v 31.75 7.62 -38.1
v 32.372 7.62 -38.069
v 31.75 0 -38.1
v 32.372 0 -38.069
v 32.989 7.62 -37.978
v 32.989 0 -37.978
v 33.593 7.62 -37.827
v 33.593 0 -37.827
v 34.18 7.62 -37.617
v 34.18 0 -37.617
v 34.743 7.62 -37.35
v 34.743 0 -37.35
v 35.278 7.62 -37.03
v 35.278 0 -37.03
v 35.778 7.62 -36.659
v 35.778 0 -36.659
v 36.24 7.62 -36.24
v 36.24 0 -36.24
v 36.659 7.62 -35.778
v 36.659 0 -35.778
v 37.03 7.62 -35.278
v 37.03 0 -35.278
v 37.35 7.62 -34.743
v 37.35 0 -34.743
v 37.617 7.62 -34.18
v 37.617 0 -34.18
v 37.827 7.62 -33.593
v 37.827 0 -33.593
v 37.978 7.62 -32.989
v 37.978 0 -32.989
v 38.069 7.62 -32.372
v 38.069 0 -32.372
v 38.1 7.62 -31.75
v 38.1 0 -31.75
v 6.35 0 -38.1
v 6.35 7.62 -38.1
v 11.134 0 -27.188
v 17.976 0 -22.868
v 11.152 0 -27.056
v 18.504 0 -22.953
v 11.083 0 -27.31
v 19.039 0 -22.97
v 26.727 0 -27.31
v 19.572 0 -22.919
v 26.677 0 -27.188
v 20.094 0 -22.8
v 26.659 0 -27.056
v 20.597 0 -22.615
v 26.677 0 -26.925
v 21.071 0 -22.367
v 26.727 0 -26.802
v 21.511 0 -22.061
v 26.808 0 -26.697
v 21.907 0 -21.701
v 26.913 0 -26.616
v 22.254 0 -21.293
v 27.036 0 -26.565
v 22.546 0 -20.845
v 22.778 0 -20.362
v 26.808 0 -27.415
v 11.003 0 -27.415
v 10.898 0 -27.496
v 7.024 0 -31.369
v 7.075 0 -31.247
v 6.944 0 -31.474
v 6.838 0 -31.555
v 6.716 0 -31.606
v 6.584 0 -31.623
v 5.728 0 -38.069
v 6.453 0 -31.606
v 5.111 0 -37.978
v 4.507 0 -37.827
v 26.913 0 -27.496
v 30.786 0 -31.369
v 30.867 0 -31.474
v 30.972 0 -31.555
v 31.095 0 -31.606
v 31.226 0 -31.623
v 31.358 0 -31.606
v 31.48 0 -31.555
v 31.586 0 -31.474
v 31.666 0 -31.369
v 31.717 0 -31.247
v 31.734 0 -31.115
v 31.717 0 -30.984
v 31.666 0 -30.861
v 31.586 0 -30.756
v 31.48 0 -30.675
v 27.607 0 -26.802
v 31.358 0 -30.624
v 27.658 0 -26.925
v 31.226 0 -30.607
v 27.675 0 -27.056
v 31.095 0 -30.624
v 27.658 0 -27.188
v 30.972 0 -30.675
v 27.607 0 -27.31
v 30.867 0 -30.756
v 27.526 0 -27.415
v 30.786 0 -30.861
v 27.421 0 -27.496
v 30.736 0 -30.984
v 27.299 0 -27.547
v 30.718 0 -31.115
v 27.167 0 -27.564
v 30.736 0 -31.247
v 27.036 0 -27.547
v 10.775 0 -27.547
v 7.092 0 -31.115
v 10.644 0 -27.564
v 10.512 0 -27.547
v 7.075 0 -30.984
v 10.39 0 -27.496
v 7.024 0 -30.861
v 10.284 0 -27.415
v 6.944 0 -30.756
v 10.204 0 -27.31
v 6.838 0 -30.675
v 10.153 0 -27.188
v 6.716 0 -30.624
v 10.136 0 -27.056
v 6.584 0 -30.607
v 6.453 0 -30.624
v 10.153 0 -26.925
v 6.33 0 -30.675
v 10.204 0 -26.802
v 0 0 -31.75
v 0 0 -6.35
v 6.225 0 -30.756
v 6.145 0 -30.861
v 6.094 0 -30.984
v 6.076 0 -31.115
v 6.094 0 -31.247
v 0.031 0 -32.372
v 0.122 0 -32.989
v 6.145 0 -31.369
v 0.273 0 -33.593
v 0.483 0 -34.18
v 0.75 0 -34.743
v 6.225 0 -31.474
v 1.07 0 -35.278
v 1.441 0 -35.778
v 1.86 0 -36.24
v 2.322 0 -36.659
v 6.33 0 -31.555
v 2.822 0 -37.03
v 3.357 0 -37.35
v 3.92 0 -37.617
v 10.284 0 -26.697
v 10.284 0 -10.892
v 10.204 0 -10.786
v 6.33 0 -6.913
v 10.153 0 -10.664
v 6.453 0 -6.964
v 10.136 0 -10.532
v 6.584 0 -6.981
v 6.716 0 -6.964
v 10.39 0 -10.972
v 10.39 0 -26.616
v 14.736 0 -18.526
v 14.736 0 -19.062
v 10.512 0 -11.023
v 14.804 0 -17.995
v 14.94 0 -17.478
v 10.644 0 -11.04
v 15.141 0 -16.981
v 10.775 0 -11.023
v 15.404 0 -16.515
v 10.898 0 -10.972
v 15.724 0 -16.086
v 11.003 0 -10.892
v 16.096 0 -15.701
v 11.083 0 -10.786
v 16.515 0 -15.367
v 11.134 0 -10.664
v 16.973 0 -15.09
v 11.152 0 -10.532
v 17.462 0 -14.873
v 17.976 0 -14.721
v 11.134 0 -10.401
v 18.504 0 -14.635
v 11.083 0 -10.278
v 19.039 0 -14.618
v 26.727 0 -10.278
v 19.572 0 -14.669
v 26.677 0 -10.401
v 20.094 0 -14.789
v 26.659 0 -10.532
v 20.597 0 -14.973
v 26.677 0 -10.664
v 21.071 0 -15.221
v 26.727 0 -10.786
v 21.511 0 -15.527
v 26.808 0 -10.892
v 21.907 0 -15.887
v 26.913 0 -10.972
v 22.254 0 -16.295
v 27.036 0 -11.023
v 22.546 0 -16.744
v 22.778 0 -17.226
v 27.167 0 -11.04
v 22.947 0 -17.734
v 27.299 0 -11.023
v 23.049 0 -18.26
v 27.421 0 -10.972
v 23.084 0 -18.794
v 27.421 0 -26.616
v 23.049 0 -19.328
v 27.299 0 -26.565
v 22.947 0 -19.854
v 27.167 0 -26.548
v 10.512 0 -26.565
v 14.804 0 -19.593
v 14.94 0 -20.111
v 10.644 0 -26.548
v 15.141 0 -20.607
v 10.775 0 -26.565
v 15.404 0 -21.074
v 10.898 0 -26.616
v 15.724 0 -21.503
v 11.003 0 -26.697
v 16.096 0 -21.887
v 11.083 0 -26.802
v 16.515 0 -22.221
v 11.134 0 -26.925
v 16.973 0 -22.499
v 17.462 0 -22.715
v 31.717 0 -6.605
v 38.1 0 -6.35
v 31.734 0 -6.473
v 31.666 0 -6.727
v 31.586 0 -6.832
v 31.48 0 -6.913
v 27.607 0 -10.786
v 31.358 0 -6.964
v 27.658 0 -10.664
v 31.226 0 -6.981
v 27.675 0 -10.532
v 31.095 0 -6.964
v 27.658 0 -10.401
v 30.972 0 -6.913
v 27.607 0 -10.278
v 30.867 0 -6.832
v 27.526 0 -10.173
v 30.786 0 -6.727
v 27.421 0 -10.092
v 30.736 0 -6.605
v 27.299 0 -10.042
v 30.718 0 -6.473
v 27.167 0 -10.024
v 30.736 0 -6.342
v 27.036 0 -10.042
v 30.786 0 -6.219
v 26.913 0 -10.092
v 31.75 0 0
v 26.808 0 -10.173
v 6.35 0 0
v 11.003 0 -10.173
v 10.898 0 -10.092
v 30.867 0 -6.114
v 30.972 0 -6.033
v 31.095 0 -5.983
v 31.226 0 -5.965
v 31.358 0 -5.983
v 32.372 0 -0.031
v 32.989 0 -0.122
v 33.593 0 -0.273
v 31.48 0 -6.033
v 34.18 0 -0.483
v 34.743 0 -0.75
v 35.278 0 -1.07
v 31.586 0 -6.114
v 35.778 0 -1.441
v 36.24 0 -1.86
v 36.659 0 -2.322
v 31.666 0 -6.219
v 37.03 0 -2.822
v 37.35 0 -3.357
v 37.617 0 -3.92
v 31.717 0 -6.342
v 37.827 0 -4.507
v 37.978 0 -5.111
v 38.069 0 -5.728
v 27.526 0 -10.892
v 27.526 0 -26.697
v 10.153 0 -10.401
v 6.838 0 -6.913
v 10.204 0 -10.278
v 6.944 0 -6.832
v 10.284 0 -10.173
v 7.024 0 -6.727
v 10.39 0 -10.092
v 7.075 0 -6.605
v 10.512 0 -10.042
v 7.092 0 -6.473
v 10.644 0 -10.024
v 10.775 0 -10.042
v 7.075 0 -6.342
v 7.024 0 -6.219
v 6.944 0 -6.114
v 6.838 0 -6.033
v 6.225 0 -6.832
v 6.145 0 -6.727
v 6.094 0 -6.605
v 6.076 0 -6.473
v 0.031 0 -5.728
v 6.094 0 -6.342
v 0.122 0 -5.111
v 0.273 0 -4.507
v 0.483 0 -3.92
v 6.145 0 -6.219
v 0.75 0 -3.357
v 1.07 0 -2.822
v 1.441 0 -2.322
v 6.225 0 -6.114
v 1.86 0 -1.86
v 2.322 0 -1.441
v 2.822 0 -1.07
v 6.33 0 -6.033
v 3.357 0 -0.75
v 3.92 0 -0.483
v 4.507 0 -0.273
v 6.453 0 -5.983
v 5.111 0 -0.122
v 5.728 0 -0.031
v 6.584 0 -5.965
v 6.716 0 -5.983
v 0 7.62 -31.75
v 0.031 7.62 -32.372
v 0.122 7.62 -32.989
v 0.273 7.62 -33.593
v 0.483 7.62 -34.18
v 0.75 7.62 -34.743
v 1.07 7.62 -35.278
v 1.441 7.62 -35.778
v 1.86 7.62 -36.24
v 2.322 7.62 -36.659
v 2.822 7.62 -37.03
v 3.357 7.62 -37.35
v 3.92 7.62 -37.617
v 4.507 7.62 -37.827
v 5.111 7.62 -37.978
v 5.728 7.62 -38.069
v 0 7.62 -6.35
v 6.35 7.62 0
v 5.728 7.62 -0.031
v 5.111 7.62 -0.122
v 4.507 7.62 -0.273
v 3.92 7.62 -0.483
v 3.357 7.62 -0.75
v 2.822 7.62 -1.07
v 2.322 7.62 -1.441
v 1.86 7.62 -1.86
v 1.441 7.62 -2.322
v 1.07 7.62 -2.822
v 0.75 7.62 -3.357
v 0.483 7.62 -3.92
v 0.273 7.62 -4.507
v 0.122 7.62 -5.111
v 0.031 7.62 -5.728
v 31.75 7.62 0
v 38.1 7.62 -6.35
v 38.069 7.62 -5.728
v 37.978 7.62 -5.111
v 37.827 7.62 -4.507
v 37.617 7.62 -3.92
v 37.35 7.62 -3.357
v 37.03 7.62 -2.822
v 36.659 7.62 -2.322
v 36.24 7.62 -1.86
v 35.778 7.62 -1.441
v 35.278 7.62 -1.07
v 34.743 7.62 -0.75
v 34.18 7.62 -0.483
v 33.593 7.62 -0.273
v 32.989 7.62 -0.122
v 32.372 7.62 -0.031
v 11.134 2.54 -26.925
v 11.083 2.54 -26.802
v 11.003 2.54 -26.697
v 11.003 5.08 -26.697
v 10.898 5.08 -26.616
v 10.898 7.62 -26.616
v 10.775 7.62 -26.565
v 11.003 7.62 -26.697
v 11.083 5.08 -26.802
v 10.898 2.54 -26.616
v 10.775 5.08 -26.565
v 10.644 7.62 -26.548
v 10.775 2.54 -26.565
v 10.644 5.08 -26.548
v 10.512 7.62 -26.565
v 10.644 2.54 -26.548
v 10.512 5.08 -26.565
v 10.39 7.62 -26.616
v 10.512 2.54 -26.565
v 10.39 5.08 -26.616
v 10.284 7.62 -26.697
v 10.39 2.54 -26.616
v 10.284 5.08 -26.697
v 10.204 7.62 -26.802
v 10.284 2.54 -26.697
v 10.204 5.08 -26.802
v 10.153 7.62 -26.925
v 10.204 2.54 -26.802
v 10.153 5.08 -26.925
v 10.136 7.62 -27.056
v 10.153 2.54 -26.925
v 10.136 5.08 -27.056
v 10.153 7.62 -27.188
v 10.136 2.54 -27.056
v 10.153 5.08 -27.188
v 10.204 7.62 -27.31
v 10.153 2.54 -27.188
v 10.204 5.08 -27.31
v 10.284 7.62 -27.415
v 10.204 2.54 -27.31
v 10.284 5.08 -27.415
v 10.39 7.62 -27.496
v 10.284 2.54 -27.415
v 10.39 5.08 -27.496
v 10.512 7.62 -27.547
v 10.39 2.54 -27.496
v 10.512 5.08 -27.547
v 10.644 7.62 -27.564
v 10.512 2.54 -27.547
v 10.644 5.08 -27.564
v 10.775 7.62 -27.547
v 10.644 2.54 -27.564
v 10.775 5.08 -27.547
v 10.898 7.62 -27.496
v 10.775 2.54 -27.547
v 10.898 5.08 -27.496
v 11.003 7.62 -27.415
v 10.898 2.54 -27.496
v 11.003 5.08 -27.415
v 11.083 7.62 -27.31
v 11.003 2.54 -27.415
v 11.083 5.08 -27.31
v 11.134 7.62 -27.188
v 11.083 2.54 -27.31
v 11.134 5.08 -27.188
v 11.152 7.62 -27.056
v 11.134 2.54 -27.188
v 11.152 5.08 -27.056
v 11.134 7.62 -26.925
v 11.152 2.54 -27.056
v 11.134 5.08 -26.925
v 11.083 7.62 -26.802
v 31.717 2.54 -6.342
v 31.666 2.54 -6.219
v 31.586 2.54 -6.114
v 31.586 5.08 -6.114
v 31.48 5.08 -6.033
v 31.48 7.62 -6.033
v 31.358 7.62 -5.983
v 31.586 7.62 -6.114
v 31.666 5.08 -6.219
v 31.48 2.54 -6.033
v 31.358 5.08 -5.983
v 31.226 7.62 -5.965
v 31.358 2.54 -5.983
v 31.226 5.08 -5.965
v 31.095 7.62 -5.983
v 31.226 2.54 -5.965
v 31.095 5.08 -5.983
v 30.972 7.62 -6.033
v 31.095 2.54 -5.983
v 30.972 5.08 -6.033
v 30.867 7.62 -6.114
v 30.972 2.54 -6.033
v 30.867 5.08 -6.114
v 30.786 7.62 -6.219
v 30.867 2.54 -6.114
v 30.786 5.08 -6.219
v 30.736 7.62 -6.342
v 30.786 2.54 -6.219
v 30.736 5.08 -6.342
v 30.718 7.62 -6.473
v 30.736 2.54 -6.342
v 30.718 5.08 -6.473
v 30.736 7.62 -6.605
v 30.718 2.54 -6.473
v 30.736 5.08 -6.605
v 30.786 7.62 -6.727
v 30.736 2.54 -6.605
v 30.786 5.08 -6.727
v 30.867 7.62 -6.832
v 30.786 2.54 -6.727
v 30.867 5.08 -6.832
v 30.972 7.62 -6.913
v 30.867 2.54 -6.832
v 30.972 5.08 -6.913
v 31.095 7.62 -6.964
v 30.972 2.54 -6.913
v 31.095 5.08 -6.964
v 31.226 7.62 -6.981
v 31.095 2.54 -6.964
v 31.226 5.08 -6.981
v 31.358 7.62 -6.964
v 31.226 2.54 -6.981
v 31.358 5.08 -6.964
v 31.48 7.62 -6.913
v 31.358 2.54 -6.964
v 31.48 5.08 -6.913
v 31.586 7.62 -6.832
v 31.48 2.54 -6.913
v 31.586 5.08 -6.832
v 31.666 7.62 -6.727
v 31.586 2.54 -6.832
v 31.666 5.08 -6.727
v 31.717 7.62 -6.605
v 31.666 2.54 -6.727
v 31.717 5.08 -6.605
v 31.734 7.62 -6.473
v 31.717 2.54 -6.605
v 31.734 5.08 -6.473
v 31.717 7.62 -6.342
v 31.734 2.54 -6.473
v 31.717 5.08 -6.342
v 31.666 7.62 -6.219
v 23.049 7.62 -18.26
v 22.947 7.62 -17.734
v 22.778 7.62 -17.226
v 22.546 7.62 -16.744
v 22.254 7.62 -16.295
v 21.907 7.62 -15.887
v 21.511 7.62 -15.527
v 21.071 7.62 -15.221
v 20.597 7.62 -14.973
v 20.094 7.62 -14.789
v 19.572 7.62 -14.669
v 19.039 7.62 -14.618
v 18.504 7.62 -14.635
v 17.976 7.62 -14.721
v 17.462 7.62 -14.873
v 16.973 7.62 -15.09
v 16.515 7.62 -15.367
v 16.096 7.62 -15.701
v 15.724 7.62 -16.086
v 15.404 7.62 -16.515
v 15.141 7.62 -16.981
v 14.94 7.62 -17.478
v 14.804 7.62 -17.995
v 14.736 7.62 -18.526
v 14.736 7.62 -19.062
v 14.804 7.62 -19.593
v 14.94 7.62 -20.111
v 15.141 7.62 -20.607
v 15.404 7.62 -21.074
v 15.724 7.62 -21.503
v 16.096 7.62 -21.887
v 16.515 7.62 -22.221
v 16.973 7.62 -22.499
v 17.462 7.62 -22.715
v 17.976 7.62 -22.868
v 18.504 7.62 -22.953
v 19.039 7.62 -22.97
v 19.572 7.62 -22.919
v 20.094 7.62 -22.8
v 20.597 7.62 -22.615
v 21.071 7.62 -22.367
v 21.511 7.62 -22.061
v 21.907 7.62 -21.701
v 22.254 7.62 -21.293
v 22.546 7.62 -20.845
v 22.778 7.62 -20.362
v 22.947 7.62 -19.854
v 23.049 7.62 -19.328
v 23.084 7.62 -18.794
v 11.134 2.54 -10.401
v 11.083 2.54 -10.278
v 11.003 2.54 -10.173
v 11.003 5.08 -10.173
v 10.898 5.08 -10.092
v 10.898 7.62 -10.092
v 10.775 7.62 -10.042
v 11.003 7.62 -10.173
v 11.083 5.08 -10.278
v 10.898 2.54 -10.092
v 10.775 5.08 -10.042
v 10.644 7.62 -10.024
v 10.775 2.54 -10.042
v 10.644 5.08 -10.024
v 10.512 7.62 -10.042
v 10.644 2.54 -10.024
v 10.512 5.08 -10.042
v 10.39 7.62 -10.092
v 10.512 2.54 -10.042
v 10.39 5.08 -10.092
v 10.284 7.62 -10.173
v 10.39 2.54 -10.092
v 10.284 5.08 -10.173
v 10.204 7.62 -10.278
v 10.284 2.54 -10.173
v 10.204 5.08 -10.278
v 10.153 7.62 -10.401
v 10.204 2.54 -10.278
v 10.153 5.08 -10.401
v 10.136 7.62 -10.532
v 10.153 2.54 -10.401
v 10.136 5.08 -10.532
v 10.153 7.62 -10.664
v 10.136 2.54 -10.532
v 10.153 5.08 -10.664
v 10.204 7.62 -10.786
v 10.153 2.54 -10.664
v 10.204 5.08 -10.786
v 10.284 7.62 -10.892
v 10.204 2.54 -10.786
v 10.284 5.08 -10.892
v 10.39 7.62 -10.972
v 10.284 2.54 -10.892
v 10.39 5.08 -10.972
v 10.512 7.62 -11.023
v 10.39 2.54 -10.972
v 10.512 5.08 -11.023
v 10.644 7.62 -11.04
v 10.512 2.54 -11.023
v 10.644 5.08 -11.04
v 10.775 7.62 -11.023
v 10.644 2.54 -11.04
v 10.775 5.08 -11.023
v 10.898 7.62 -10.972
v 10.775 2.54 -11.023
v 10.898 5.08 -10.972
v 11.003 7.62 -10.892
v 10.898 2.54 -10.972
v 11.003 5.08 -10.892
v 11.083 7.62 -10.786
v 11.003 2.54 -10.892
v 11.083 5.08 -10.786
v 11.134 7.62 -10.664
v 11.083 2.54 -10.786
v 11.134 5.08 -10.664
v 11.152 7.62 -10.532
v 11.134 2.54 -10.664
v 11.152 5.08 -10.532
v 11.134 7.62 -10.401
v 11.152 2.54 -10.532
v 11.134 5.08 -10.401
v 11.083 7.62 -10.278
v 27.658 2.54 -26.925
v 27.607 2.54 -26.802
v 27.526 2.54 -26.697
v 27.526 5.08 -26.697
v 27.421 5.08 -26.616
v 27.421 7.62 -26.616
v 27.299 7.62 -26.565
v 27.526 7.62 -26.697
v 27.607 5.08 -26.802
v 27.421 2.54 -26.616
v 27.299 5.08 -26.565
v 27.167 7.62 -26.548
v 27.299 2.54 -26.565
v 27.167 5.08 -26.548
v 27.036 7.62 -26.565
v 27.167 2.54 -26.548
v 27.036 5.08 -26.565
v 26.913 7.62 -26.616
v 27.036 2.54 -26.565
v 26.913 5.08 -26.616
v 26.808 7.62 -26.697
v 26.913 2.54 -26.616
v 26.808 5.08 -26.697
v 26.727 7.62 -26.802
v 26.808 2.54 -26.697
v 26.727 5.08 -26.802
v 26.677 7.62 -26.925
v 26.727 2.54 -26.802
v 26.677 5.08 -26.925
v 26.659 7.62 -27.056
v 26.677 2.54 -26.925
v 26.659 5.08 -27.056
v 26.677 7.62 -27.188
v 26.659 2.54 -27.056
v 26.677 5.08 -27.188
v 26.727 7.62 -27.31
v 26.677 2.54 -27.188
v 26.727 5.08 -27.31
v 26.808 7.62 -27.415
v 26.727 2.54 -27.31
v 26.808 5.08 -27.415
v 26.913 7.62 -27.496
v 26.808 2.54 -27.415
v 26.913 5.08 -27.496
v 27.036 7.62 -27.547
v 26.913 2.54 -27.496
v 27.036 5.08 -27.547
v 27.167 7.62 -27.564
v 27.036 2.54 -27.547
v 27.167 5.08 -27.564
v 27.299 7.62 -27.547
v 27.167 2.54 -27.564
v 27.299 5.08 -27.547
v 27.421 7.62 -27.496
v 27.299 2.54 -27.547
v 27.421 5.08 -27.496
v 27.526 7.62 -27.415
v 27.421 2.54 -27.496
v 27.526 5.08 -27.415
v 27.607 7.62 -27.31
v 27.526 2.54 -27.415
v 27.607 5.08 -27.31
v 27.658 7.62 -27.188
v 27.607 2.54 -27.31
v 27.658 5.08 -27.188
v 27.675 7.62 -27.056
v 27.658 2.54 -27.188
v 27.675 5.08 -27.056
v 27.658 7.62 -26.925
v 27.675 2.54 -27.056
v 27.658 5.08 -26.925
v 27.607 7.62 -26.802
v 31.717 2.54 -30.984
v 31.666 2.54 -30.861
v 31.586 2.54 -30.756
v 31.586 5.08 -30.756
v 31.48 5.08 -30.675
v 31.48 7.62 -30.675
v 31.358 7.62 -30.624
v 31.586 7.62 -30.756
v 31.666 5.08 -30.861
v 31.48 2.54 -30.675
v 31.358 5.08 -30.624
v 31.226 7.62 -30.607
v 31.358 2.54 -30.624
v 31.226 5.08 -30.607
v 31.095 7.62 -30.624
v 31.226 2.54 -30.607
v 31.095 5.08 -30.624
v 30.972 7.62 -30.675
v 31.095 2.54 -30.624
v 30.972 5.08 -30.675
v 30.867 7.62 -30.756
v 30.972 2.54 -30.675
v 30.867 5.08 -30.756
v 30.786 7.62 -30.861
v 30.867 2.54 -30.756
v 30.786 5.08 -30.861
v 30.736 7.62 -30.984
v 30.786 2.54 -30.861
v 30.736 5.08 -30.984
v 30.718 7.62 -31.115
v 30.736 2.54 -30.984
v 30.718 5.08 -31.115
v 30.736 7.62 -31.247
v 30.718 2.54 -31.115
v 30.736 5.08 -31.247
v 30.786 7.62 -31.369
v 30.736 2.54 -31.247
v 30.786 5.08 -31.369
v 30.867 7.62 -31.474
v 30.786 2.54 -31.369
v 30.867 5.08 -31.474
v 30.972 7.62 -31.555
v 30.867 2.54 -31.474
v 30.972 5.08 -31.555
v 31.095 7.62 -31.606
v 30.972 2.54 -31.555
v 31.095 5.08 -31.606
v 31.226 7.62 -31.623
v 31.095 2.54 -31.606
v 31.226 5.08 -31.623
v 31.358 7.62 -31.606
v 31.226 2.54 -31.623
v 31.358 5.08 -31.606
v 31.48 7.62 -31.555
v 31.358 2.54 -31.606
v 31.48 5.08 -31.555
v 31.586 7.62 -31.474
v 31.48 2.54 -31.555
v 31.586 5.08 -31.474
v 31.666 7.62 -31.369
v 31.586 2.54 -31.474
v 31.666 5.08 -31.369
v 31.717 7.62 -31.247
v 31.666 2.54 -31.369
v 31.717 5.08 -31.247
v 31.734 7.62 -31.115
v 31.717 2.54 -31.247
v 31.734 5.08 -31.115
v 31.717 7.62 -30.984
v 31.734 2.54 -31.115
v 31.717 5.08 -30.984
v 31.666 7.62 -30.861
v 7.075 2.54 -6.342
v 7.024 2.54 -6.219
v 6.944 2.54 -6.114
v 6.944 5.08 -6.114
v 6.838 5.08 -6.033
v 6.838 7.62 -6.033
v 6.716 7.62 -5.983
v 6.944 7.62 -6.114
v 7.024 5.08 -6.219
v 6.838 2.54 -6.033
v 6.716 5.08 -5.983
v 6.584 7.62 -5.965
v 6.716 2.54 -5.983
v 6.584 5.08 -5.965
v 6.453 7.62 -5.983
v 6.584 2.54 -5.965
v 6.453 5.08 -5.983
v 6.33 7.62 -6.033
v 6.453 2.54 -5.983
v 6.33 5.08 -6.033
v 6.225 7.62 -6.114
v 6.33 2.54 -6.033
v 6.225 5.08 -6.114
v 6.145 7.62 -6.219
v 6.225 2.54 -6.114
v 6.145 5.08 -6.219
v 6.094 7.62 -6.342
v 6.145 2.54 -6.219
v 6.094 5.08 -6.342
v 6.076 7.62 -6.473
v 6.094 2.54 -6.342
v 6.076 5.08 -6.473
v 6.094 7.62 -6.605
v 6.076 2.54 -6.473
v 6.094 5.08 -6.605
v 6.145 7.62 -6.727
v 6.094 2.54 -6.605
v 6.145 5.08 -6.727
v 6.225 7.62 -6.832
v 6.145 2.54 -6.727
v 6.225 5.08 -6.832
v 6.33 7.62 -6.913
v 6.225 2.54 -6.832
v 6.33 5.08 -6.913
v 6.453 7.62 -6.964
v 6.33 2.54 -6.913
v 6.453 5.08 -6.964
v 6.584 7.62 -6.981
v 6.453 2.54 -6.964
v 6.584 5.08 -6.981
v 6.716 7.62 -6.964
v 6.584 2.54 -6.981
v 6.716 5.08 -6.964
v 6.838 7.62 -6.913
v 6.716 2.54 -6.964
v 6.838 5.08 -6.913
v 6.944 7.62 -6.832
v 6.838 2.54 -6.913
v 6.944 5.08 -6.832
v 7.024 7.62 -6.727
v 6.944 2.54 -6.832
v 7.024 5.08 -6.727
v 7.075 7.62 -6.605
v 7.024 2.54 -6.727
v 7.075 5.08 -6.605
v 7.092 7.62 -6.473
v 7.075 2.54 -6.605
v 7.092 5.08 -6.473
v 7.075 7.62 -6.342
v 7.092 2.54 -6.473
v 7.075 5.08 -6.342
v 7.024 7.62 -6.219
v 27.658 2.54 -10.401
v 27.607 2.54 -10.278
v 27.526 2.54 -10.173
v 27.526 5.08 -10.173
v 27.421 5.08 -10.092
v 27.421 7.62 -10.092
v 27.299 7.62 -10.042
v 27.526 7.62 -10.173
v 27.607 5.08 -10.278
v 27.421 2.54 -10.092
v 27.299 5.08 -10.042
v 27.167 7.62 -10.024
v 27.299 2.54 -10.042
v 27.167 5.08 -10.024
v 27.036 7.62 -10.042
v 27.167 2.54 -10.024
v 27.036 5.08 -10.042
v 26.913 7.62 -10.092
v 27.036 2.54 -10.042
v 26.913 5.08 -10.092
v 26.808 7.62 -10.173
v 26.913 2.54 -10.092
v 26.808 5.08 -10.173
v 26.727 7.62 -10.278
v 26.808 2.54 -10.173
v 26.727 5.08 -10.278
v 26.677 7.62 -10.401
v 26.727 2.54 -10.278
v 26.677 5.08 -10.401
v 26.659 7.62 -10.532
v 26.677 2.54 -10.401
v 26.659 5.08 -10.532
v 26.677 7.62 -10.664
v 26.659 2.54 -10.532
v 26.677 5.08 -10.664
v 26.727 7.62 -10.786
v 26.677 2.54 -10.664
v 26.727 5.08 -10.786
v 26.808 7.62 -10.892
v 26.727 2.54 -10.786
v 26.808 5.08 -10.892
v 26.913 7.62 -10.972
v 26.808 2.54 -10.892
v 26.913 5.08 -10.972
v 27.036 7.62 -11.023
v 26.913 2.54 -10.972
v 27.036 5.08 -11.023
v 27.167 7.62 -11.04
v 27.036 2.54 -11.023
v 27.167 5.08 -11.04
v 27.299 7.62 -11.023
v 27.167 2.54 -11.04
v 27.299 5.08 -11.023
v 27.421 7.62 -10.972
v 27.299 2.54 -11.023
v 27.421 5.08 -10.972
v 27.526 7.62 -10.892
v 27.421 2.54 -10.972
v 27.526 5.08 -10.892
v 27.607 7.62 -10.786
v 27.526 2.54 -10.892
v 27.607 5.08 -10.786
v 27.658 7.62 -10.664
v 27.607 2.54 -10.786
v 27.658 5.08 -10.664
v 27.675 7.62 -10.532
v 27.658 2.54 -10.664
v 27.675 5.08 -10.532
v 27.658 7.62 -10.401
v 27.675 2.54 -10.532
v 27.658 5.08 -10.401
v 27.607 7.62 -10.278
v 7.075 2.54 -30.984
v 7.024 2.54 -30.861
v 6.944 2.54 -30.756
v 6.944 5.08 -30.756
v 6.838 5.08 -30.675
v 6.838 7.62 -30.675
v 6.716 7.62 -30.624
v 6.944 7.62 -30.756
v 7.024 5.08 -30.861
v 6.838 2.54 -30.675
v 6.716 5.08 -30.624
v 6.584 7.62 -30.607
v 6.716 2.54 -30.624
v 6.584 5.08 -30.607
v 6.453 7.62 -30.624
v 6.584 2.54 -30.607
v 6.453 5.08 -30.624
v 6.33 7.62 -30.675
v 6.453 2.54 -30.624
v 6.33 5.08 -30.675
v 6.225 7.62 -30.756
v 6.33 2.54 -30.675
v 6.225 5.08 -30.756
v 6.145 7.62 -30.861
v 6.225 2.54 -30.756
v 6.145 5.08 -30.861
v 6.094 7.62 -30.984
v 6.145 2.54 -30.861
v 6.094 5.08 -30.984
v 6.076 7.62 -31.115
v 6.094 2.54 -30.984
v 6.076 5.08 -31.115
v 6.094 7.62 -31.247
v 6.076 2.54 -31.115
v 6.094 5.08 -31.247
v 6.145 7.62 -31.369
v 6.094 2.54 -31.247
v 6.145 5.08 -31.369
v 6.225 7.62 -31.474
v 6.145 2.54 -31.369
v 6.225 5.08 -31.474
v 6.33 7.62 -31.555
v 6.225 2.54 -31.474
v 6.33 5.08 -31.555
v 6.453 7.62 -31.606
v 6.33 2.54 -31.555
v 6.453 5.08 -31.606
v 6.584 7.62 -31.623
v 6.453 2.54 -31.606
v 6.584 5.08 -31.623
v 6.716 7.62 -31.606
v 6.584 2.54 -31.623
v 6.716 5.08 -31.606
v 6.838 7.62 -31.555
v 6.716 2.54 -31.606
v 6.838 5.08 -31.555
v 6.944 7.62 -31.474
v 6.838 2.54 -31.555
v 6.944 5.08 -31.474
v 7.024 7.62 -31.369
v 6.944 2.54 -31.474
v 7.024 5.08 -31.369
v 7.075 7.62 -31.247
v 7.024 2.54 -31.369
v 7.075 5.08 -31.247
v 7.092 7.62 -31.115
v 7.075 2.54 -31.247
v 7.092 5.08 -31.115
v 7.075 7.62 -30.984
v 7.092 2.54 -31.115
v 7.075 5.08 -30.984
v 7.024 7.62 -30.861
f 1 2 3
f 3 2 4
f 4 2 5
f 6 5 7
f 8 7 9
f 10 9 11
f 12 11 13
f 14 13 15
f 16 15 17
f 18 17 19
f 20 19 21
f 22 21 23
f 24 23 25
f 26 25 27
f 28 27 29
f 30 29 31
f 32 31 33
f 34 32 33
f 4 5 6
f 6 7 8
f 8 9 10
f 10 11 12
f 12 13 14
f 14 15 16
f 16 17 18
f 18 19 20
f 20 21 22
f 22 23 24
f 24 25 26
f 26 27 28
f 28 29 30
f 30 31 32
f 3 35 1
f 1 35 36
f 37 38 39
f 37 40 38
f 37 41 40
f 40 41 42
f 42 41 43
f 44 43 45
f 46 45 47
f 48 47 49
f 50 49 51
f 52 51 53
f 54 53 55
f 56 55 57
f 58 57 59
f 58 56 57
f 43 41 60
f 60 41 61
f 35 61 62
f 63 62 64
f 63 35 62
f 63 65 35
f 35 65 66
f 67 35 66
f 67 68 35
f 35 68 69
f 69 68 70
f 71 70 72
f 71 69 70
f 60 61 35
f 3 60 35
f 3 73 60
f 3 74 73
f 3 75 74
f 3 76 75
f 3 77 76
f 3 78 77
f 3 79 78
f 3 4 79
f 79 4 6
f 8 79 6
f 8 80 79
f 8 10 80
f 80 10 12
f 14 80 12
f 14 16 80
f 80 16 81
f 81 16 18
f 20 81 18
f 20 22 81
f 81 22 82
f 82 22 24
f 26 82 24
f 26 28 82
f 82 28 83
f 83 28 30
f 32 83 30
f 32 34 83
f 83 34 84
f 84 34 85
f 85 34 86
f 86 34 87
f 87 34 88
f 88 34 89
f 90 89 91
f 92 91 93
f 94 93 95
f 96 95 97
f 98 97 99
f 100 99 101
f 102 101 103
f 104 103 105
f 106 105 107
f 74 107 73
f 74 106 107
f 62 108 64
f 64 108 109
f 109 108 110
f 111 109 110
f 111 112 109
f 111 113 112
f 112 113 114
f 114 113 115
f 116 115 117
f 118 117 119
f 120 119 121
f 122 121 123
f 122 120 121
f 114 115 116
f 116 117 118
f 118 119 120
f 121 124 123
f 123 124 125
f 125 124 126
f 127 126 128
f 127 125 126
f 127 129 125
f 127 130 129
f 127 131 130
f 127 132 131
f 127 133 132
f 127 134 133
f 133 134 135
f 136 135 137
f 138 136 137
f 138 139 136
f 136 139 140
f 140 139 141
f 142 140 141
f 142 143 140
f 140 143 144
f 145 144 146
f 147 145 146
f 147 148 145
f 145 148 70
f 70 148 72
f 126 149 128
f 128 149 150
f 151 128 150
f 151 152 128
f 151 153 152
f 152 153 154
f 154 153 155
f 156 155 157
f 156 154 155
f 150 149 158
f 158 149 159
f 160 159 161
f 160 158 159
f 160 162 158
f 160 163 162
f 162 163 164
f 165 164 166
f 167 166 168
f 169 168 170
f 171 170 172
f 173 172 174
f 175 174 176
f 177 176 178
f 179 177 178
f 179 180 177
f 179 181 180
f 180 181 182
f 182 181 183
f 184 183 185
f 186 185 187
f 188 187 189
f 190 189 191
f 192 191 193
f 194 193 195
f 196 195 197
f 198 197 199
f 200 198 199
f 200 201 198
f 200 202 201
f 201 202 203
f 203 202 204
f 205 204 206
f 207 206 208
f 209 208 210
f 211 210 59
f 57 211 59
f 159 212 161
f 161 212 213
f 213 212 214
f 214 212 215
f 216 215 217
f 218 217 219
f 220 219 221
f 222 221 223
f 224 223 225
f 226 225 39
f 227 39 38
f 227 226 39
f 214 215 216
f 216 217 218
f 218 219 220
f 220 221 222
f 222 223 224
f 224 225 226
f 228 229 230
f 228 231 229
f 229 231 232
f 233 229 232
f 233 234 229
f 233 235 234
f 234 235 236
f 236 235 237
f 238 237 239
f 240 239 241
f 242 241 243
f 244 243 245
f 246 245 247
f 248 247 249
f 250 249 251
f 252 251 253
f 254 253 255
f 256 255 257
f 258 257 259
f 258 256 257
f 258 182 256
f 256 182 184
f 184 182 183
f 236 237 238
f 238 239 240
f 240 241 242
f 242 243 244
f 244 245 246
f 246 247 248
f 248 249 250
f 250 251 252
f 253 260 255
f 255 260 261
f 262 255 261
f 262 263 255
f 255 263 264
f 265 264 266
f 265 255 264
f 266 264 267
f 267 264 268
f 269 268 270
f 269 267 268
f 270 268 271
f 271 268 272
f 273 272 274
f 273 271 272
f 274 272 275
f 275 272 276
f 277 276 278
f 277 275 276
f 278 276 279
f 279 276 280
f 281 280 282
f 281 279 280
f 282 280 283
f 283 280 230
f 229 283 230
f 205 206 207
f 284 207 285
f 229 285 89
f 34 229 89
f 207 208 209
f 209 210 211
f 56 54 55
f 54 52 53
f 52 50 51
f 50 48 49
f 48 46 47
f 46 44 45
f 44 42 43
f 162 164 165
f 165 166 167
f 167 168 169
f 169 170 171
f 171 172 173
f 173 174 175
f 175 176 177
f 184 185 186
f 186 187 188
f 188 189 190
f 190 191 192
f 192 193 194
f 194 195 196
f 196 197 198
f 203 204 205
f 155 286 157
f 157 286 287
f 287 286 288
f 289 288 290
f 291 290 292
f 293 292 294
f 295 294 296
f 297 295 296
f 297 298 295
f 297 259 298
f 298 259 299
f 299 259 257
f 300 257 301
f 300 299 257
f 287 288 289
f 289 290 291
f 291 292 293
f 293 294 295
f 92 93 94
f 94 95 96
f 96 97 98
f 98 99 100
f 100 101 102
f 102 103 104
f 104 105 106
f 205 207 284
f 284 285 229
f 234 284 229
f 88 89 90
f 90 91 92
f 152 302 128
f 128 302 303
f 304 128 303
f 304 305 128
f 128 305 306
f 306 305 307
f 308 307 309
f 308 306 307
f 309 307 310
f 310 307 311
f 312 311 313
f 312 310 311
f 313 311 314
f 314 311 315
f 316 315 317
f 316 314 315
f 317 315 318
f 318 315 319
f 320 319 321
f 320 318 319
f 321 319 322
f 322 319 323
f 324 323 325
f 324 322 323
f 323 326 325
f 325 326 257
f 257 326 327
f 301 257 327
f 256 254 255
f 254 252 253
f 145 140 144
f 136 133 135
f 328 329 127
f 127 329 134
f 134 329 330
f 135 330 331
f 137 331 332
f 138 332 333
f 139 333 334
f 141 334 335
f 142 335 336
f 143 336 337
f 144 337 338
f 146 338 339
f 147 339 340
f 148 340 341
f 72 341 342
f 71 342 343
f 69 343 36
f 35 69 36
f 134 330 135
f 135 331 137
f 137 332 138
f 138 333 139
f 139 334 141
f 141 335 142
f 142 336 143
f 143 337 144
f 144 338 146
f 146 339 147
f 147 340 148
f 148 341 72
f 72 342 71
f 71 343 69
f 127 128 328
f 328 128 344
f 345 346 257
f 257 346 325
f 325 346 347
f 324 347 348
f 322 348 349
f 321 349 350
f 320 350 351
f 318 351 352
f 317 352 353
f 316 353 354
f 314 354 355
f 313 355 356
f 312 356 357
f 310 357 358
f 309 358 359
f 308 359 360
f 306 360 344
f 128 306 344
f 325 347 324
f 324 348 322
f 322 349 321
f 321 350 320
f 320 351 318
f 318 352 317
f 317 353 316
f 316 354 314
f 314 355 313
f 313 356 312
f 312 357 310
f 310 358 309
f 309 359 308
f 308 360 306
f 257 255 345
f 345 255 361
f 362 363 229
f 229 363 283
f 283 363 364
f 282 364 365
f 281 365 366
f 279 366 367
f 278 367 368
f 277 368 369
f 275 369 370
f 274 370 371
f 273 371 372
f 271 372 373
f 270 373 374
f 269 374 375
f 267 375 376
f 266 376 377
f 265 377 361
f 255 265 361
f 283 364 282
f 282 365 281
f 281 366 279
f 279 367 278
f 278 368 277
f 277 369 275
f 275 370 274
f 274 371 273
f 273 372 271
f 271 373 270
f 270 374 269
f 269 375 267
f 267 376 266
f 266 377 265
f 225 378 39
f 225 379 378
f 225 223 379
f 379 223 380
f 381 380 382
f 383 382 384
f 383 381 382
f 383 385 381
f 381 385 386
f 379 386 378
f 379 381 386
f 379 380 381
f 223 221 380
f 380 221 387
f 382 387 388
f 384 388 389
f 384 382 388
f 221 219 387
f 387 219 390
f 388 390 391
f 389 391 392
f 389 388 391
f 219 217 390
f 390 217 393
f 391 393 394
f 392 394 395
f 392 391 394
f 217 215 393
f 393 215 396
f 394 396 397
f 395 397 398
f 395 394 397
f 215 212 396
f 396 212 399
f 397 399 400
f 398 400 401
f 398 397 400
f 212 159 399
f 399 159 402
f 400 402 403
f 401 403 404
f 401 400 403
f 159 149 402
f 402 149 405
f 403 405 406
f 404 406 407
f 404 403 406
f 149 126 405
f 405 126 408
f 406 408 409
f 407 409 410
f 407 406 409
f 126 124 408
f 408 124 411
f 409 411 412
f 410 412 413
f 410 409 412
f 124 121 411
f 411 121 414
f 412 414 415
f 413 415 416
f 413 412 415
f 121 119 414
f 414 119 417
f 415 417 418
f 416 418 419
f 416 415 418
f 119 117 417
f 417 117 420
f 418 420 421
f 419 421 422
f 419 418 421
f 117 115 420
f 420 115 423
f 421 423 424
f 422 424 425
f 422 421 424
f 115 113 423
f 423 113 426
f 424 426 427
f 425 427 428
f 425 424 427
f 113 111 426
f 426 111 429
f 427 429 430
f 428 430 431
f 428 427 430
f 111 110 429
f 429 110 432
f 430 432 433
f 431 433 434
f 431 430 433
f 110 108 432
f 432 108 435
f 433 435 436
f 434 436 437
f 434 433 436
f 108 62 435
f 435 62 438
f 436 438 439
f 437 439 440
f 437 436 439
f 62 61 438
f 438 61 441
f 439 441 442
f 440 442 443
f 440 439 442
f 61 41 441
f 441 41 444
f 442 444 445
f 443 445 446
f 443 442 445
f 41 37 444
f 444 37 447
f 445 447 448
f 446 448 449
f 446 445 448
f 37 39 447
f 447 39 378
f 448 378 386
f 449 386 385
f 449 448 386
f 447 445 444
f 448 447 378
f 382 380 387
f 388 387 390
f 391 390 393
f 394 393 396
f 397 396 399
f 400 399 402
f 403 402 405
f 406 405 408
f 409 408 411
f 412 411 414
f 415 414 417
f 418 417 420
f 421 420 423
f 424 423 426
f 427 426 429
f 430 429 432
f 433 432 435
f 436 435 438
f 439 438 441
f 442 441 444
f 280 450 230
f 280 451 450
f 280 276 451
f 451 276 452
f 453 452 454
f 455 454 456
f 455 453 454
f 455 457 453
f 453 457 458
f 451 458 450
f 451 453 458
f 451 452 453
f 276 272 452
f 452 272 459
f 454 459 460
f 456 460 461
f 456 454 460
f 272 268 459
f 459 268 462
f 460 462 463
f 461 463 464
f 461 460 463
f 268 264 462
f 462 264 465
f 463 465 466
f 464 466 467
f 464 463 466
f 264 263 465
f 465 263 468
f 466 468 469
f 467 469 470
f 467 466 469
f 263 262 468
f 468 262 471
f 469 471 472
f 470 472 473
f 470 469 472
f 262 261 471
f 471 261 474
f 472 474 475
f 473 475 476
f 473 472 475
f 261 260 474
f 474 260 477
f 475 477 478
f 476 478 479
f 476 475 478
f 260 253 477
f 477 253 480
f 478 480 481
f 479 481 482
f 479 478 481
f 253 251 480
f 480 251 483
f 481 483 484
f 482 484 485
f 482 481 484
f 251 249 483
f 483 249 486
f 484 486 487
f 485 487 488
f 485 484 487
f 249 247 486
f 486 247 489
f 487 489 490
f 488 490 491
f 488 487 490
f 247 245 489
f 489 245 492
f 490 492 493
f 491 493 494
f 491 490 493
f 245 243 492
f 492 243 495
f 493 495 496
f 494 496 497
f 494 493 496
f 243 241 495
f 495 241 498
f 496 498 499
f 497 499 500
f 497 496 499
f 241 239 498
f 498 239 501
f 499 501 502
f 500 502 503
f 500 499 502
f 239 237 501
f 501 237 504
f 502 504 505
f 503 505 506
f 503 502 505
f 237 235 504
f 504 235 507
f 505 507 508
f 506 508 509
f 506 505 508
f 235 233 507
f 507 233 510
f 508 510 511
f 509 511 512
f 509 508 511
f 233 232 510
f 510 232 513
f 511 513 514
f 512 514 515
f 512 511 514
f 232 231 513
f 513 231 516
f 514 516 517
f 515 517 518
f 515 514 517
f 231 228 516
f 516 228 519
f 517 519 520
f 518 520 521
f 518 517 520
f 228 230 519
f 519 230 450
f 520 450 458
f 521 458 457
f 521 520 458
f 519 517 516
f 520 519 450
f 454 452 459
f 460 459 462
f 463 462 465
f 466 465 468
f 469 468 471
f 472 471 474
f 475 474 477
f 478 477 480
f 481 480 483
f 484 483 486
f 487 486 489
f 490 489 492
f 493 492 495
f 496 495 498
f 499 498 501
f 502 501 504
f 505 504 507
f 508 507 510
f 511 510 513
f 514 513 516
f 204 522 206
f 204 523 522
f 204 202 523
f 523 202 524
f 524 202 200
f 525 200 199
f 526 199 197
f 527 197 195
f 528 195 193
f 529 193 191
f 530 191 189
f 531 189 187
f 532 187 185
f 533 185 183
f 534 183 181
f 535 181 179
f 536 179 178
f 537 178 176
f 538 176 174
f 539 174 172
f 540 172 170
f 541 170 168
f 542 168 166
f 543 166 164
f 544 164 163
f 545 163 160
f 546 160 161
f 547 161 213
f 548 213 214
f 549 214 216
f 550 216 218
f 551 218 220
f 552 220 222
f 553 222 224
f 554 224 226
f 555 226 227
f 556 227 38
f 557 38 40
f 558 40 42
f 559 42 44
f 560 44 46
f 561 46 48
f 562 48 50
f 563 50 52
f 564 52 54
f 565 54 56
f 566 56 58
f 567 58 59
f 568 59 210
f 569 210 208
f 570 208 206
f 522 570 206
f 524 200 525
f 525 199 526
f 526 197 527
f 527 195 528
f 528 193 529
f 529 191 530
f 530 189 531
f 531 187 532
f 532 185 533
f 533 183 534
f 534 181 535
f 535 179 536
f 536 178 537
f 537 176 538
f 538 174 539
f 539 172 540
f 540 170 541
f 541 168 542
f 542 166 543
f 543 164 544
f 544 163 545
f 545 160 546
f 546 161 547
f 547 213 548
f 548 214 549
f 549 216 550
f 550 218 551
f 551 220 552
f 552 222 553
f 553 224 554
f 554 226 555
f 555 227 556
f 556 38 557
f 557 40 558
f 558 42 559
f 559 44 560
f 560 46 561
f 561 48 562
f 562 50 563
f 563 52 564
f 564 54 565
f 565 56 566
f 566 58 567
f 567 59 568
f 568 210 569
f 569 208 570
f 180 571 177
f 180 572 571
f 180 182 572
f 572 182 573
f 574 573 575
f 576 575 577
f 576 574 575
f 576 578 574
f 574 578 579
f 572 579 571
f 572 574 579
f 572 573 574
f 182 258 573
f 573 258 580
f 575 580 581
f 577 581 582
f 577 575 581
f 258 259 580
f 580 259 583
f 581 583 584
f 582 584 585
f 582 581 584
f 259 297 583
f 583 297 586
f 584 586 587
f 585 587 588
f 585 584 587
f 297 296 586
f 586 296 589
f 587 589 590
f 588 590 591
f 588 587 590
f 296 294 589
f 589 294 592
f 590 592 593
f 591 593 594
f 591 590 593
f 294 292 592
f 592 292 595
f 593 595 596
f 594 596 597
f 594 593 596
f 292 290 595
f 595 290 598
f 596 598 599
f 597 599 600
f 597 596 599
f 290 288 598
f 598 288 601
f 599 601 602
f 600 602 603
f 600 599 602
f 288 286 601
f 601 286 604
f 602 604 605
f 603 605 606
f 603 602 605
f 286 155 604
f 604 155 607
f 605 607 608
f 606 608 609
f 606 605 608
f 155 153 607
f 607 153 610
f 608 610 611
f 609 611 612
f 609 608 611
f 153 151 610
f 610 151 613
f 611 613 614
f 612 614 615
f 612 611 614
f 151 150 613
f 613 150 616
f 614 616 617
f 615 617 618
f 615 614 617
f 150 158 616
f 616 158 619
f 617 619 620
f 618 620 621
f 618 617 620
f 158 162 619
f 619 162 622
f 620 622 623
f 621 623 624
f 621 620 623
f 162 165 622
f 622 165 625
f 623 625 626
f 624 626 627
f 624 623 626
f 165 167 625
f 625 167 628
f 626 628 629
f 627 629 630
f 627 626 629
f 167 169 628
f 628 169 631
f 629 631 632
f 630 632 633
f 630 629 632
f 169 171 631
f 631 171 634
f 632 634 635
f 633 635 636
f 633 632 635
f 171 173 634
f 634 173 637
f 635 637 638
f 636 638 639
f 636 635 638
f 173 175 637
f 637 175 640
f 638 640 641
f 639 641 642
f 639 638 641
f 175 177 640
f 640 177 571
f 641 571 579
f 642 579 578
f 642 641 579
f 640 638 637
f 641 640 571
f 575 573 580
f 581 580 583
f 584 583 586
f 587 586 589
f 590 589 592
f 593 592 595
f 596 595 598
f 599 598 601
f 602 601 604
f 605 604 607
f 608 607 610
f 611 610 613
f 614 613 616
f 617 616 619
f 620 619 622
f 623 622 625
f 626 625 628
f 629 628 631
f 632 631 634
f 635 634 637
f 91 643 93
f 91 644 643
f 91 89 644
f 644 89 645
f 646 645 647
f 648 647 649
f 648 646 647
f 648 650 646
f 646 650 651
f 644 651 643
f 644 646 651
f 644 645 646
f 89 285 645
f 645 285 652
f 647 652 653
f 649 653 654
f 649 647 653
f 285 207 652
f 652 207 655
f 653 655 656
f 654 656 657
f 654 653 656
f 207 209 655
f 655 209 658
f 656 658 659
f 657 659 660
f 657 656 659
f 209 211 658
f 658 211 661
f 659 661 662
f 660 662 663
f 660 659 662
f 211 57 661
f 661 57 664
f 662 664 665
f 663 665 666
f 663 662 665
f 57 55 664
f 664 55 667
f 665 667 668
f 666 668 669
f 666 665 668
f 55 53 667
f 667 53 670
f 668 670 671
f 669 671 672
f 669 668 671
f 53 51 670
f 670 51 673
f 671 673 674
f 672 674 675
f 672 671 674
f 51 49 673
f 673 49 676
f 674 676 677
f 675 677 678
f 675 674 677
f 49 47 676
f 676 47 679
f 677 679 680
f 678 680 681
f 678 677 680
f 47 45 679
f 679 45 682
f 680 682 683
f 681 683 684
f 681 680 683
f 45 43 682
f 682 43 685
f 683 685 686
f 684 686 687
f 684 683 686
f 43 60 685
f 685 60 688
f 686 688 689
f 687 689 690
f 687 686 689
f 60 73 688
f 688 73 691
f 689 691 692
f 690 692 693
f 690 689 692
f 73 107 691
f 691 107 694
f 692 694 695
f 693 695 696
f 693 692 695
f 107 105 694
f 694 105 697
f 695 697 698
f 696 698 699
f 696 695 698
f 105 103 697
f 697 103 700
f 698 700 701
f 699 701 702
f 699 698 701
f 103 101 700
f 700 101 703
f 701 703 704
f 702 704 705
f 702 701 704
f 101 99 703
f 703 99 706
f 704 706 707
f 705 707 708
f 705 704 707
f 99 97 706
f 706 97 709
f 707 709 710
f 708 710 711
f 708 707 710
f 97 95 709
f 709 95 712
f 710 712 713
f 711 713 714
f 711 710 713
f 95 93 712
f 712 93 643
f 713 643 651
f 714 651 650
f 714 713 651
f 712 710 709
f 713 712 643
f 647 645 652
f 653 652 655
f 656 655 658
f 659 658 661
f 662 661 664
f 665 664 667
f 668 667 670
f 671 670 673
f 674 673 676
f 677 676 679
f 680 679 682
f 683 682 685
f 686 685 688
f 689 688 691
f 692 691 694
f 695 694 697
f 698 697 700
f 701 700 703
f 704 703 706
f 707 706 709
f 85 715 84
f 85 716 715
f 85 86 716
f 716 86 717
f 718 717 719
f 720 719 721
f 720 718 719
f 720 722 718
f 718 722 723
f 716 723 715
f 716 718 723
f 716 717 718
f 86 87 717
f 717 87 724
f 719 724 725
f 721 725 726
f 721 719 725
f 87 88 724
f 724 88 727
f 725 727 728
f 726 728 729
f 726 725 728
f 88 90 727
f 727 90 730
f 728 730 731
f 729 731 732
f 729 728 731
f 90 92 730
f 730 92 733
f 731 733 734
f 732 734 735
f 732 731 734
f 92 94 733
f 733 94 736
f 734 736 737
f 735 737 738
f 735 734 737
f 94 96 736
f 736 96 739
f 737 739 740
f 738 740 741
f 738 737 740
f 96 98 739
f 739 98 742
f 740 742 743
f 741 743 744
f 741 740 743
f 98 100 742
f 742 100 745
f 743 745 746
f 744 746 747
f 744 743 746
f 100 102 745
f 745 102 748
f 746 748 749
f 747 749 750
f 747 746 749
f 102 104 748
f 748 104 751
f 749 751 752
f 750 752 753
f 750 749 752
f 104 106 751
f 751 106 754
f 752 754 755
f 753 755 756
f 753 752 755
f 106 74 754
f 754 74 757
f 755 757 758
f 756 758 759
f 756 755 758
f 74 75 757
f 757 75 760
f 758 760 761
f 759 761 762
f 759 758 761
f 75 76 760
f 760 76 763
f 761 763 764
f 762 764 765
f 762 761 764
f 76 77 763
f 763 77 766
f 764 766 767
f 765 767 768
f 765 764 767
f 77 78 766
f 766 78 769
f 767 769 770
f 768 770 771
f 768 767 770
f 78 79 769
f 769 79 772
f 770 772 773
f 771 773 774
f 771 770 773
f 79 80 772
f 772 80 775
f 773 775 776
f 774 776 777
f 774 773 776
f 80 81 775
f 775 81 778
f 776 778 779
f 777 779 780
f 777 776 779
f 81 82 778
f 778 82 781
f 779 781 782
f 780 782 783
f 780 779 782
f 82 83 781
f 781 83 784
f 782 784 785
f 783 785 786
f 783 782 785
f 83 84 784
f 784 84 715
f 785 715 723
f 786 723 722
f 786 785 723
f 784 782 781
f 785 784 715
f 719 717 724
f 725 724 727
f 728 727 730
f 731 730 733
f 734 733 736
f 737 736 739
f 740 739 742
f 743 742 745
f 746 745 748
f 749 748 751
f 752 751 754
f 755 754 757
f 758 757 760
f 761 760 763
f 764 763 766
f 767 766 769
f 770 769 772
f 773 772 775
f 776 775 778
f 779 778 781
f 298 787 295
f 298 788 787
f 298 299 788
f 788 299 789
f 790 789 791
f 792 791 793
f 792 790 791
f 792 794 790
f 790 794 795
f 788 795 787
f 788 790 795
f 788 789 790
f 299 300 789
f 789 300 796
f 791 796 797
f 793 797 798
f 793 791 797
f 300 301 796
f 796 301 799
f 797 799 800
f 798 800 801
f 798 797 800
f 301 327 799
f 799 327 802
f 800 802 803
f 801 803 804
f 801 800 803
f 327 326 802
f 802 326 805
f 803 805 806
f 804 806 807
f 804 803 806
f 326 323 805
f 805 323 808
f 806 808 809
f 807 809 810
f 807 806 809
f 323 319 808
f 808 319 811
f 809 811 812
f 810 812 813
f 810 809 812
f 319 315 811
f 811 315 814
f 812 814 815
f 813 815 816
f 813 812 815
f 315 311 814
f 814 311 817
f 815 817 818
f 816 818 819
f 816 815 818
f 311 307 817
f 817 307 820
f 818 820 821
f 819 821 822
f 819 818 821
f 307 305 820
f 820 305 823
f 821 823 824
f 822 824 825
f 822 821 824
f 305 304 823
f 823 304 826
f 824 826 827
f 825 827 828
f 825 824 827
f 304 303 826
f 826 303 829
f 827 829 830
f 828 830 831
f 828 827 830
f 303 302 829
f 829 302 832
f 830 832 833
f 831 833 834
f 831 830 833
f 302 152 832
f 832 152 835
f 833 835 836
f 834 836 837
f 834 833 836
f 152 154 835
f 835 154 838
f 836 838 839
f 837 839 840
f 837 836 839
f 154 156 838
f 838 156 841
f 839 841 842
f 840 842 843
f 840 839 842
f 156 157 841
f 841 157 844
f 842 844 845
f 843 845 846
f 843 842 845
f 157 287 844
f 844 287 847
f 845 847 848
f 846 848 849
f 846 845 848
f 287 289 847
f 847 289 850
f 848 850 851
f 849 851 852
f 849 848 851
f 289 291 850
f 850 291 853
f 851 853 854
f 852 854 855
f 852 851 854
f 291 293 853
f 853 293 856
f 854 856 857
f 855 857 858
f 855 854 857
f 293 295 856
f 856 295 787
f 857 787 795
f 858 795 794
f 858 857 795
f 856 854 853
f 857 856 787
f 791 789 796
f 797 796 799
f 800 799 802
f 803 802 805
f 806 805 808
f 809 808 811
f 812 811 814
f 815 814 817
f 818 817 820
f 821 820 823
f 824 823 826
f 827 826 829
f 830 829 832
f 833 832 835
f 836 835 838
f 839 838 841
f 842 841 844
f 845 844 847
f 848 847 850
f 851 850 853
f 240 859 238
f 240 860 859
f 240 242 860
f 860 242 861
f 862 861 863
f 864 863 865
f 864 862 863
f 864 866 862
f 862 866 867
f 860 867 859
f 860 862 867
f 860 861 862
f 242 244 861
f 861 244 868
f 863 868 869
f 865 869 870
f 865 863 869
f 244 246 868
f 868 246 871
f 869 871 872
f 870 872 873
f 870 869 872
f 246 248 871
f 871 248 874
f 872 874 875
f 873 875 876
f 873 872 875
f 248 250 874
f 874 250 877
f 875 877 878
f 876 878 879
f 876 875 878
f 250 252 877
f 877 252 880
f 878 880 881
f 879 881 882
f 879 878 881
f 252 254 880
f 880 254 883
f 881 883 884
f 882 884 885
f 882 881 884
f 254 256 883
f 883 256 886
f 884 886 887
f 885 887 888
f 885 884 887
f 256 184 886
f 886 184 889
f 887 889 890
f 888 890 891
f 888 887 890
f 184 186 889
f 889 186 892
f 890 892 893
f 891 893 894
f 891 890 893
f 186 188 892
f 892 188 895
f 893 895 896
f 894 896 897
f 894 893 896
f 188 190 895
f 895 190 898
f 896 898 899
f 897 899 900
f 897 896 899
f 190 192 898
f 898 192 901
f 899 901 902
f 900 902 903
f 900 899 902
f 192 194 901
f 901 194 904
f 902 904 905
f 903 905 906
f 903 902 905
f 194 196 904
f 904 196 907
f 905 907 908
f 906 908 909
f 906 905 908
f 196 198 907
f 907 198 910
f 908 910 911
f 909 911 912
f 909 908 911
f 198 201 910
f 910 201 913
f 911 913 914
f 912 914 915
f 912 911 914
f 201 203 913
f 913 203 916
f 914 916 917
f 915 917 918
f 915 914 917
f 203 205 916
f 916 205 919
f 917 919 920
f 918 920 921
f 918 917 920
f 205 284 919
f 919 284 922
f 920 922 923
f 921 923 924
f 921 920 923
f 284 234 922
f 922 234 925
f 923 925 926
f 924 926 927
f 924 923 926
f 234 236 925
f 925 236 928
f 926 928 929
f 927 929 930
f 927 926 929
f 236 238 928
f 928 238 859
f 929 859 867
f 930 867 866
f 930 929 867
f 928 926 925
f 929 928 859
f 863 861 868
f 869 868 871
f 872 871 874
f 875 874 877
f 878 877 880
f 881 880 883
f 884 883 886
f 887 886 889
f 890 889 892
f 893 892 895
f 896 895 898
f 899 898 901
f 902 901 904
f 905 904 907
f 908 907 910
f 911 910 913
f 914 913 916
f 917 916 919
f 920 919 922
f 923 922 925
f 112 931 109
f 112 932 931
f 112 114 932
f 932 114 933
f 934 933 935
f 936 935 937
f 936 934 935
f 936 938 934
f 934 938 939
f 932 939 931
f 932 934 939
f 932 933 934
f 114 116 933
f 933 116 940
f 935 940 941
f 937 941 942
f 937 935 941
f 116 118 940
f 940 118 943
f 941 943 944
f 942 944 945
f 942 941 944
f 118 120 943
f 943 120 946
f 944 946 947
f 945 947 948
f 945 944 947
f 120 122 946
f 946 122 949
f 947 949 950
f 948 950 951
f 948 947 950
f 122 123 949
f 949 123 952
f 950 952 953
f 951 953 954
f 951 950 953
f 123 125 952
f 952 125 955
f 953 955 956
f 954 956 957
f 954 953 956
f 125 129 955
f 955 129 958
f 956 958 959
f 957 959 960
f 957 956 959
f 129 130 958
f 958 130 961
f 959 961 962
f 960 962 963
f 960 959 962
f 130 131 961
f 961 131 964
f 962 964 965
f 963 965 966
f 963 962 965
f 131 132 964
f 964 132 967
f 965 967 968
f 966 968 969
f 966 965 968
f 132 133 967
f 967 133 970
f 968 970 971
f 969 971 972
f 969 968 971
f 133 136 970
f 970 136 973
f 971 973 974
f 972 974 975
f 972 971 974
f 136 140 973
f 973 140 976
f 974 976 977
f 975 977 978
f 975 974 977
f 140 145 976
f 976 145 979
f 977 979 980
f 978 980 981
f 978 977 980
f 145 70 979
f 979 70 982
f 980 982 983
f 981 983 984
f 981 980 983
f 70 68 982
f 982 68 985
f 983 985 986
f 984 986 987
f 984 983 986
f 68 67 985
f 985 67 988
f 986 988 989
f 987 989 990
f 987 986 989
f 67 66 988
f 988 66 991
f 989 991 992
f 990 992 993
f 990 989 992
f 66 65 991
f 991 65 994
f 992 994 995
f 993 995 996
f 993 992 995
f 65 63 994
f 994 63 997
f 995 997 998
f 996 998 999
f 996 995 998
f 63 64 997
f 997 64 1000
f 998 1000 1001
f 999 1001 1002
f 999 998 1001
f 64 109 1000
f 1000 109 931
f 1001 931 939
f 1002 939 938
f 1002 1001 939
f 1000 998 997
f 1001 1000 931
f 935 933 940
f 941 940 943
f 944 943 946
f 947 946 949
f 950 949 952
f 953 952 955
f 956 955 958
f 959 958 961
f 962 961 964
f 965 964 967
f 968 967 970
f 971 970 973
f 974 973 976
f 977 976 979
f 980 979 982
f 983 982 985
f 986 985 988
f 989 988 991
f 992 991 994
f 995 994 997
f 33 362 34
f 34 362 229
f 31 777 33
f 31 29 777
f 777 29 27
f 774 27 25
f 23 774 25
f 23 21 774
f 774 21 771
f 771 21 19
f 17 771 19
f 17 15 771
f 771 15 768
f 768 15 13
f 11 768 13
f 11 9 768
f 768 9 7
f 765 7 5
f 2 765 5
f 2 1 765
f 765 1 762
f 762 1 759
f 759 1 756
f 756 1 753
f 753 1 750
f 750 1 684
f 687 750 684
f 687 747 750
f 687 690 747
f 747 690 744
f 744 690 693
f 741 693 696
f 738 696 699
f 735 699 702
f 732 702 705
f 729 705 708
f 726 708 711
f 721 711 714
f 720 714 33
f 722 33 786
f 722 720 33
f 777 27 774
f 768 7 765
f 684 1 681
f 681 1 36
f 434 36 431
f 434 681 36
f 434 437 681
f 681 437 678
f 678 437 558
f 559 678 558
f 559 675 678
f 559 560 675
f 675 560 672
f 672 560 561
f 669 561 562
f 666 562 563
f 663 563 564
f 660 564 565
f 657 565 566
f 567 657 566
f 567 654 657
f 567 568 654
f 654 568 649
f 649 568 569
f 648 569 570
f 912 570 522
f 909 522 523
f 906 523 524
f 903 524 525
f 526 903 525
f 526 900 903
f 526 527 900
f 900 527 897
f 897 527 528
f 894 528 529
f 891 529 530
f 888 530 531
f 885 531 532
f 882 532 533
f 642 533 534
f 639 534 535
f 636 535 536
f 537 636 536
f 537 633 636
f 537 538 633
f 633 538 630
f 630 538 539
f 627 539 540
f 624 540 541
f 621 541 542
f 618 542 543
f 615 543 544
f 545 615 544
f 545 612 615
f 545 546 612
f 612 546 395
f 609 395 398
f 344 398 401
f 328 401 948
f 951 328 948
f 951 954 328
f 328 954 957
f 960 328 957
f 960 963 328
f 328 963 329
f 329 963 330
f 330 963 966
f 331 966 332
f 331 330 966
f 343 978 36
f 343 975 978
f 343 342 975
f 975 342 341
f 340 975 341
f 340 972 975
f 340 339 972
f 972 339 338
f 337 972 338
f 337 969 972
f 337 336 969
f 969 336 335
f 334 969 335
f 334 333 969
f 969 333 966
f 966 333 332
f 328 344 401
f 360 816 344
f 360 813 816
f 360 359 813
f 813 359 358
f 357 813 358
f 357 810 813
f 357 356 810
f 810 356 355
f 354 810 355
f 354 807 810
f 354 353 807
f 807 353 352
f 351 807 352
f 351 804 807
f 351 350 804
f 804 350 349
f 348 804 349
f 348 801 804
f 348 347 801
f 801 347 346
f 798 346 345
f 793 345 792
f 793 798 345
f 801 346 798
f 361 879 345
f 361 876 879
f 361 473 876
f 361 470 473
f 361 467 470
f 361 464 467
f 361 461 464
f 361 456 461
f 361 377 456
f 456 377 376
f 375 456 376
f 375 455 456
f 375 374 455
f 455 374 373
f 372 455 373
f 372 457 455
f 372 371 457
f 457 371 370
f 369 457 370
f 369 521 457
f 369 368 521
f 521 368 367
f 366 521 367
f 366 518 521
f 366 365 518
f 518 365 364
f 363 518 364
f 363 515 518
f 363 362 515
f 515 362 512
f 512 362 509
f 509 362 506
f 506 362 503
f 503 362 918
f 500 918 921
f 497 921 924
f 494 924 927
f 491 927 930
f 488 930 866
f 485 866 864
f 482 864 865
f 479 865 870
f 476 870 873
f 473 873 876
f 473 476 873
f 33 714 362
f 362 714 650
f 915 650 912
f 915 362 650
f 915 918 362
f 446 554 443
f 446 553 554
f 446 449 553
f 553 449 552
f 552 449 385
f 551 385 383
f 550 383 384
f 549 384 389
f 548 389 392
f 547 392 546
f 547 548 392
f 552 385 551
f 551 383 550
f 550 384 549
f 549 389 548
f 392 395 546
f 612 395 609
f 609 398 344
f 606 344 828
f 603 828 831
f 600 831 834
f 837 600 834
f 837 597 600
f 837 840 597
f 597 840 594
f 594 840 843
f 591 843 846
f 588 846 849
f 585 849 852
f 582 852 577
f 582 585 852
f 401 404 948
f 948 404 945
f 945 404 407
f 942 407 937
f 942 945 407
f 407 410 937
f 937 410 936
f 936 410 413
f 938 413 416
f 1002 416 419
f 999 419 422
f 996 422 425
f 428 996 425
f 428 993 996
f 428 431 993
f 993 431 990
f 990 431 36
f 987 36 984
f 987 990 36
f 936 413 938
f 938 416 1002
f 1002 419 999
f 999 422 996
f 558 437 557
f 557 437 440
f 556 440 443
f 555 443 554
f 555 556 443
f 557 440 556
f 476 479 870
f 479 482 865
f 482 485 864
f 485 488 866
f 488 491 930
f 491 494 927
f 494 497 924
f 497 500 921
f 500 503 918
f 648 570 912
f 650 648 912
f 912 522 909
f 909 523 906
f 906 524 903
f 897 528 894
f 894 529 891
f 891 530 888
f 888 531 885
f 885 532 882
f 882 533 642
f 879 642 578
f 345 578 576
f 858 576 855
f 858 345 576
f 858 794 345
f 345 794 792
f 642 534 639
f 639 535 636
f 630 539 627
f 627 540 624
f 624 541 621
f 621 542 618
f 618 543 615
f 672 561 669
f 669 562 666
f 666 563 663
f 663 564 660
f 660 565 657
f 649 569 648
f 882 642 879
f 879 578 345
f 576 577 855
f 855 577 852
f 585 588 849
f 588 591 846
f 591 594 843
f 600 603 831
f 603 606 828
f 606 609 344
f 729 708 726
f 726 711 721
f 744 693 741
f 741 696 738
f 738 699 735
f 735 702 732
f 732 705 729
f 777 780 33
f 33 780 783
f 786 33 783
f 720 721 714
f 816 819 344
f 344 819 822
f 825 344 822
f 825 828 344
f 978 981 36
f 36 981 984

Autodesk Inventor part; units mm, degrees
ref_plane "YZ Plane" through (0, 0, 0) normal (1, 0, 0) x (0, 1, 0)
ref_plane "XZ Plane" through (0, 0, 0) normal (0, 1, 0) x (-1, 0, 0)
ref_plane "XY Plane" through (0, 0, 0) normal (0, 0, 1) x (1, 0, 0)
sketch "Sketch1" plane through (0, 0, 0) normal (0, 1, 0) x (-1, 0, 0)
  line L0 (0, 0) -> (-38.1, 0)
  line L1 (-38.1, 0) -> (-38.1, -38.1)
  line L2 (-38.1, -38.1) -> (0, -38.1)
  line L3 (0, -38.1) -> (0, 0)
  dimension "d0" = 38.1
  dimension "d1" = 38.1
extrude "Extrusion1" add sketch "Sketch1" along normal blind 7.62
sketch "Sketch2" plane through (0, 7.62, 0) normal (0, 1, 0) x (1, 0, 0)
  line L0 (4.5036, 33.196) -> (33.3072, 33.196)
  line L1 (33.3072, 33.196) -> (33.3072, 4.3924)
  line L2 (33.3072, 4.3924) -> (4.5036, 4.3924)
  line L3 (4.5036, 4.3924) -> (4.5036, 33.196)
  line L4 (33.3072, 33.196) -> (4.5036, 4.3924)
  line L5 (4.5036, 33.196) -> (33.3072, 4.3924)
  line L6 (18.9054, 18.7942) -> (27.1672, 27.056)
  line L7 (18.9054, 18.7942) -> (10.6436, 27.056)
  line L8 (18.9054, 18.7942) -> (10.6436, 10.5324)
  line L9 (18.9054, 18.7942) -> (27.1672, 10.5324)
  line L10 (18.9054, 18.7942) -> (31.2263, 31.1151)
  line L11 (18.9054, 18.7942) -> (6.5845, 31.1151)
  line L12 (18.9054, 18.7942) -> (6.5845, 6.4733)
  line L13 (18.9054, 18.7942) -> (31.2263, 6.4733)
  circle A0 centre (27.1672, 27.056) radius 0.508
  circle A1 centre (31.2263, 31.1151) radius 0.508
  circle A2 centre (6.5845, 31.1151) radius 0.508
  circle A3 centre (10.6436, 27.056) radius 0.508
  circle A4 centre (10.6436, 10.5324) radius 0.508
  circle A5 centre (6.5845, 6.4733) radius 0.508
  line L14 (18.9054, 18.7942) -> (27.1672, 10.5324)
  circle A6 centre (27.1672, 10.5324) radius 0.508
  circle A7 centre (31.2263, 6.4733) radius 0.508
  circle A8 centre (18.9054, 18.7942) radius 4.1783
  point P0 (0, 0)
  point P1 (27.2554, -7.62)
  dimension "d4" = 28.8036
  dimension "d5" = 28.8036
  dimension "d6" = 11.684
  dimension "d7" = 11.684
  dimension "d8" = 11.684
  dimension "d9" = 17.4244
  dimension "d10" = 17.4244
  dimension "d11" = 17.4244
  dimension "d12" = 17.4244
  dimension "d13" = 1.016
  dimension "d14" = 1.016
  dimension "d15" = 1.016
  dimension "d16" = 1.016
  dimension "d17" = 1.016
  dimension "d18" = 1.016
  dimension "d19" = 11.684
  dimension "d20" = 1.016
  dimension "d21" = 1.016
  dimension "d22" = 8.3566
extrude "Extrusion2" cut sketch "Sketch2" against normal blind 25.4 contours A2 L5 | L5 A2 | A1 L4 | L4 A1 | A5 L4 | L4 A5 | A7 L5 | L5 A7 | A3 L5 | L5 A3 | A0 L4 | L4 A0 | A4 L4 | L4 A4 | A6 L5 | L5 A6 | A8 L4 L5 | L5 L4 A8 | A8 L5 L4 | L4 L5 A8
fillet "Fillet1" radius 6.35 4 edges at (38.1, 3.81, 0) (0, 3.81, 0) (0, 3.81, -38.1) (38.1, 3.81, -38.1)
